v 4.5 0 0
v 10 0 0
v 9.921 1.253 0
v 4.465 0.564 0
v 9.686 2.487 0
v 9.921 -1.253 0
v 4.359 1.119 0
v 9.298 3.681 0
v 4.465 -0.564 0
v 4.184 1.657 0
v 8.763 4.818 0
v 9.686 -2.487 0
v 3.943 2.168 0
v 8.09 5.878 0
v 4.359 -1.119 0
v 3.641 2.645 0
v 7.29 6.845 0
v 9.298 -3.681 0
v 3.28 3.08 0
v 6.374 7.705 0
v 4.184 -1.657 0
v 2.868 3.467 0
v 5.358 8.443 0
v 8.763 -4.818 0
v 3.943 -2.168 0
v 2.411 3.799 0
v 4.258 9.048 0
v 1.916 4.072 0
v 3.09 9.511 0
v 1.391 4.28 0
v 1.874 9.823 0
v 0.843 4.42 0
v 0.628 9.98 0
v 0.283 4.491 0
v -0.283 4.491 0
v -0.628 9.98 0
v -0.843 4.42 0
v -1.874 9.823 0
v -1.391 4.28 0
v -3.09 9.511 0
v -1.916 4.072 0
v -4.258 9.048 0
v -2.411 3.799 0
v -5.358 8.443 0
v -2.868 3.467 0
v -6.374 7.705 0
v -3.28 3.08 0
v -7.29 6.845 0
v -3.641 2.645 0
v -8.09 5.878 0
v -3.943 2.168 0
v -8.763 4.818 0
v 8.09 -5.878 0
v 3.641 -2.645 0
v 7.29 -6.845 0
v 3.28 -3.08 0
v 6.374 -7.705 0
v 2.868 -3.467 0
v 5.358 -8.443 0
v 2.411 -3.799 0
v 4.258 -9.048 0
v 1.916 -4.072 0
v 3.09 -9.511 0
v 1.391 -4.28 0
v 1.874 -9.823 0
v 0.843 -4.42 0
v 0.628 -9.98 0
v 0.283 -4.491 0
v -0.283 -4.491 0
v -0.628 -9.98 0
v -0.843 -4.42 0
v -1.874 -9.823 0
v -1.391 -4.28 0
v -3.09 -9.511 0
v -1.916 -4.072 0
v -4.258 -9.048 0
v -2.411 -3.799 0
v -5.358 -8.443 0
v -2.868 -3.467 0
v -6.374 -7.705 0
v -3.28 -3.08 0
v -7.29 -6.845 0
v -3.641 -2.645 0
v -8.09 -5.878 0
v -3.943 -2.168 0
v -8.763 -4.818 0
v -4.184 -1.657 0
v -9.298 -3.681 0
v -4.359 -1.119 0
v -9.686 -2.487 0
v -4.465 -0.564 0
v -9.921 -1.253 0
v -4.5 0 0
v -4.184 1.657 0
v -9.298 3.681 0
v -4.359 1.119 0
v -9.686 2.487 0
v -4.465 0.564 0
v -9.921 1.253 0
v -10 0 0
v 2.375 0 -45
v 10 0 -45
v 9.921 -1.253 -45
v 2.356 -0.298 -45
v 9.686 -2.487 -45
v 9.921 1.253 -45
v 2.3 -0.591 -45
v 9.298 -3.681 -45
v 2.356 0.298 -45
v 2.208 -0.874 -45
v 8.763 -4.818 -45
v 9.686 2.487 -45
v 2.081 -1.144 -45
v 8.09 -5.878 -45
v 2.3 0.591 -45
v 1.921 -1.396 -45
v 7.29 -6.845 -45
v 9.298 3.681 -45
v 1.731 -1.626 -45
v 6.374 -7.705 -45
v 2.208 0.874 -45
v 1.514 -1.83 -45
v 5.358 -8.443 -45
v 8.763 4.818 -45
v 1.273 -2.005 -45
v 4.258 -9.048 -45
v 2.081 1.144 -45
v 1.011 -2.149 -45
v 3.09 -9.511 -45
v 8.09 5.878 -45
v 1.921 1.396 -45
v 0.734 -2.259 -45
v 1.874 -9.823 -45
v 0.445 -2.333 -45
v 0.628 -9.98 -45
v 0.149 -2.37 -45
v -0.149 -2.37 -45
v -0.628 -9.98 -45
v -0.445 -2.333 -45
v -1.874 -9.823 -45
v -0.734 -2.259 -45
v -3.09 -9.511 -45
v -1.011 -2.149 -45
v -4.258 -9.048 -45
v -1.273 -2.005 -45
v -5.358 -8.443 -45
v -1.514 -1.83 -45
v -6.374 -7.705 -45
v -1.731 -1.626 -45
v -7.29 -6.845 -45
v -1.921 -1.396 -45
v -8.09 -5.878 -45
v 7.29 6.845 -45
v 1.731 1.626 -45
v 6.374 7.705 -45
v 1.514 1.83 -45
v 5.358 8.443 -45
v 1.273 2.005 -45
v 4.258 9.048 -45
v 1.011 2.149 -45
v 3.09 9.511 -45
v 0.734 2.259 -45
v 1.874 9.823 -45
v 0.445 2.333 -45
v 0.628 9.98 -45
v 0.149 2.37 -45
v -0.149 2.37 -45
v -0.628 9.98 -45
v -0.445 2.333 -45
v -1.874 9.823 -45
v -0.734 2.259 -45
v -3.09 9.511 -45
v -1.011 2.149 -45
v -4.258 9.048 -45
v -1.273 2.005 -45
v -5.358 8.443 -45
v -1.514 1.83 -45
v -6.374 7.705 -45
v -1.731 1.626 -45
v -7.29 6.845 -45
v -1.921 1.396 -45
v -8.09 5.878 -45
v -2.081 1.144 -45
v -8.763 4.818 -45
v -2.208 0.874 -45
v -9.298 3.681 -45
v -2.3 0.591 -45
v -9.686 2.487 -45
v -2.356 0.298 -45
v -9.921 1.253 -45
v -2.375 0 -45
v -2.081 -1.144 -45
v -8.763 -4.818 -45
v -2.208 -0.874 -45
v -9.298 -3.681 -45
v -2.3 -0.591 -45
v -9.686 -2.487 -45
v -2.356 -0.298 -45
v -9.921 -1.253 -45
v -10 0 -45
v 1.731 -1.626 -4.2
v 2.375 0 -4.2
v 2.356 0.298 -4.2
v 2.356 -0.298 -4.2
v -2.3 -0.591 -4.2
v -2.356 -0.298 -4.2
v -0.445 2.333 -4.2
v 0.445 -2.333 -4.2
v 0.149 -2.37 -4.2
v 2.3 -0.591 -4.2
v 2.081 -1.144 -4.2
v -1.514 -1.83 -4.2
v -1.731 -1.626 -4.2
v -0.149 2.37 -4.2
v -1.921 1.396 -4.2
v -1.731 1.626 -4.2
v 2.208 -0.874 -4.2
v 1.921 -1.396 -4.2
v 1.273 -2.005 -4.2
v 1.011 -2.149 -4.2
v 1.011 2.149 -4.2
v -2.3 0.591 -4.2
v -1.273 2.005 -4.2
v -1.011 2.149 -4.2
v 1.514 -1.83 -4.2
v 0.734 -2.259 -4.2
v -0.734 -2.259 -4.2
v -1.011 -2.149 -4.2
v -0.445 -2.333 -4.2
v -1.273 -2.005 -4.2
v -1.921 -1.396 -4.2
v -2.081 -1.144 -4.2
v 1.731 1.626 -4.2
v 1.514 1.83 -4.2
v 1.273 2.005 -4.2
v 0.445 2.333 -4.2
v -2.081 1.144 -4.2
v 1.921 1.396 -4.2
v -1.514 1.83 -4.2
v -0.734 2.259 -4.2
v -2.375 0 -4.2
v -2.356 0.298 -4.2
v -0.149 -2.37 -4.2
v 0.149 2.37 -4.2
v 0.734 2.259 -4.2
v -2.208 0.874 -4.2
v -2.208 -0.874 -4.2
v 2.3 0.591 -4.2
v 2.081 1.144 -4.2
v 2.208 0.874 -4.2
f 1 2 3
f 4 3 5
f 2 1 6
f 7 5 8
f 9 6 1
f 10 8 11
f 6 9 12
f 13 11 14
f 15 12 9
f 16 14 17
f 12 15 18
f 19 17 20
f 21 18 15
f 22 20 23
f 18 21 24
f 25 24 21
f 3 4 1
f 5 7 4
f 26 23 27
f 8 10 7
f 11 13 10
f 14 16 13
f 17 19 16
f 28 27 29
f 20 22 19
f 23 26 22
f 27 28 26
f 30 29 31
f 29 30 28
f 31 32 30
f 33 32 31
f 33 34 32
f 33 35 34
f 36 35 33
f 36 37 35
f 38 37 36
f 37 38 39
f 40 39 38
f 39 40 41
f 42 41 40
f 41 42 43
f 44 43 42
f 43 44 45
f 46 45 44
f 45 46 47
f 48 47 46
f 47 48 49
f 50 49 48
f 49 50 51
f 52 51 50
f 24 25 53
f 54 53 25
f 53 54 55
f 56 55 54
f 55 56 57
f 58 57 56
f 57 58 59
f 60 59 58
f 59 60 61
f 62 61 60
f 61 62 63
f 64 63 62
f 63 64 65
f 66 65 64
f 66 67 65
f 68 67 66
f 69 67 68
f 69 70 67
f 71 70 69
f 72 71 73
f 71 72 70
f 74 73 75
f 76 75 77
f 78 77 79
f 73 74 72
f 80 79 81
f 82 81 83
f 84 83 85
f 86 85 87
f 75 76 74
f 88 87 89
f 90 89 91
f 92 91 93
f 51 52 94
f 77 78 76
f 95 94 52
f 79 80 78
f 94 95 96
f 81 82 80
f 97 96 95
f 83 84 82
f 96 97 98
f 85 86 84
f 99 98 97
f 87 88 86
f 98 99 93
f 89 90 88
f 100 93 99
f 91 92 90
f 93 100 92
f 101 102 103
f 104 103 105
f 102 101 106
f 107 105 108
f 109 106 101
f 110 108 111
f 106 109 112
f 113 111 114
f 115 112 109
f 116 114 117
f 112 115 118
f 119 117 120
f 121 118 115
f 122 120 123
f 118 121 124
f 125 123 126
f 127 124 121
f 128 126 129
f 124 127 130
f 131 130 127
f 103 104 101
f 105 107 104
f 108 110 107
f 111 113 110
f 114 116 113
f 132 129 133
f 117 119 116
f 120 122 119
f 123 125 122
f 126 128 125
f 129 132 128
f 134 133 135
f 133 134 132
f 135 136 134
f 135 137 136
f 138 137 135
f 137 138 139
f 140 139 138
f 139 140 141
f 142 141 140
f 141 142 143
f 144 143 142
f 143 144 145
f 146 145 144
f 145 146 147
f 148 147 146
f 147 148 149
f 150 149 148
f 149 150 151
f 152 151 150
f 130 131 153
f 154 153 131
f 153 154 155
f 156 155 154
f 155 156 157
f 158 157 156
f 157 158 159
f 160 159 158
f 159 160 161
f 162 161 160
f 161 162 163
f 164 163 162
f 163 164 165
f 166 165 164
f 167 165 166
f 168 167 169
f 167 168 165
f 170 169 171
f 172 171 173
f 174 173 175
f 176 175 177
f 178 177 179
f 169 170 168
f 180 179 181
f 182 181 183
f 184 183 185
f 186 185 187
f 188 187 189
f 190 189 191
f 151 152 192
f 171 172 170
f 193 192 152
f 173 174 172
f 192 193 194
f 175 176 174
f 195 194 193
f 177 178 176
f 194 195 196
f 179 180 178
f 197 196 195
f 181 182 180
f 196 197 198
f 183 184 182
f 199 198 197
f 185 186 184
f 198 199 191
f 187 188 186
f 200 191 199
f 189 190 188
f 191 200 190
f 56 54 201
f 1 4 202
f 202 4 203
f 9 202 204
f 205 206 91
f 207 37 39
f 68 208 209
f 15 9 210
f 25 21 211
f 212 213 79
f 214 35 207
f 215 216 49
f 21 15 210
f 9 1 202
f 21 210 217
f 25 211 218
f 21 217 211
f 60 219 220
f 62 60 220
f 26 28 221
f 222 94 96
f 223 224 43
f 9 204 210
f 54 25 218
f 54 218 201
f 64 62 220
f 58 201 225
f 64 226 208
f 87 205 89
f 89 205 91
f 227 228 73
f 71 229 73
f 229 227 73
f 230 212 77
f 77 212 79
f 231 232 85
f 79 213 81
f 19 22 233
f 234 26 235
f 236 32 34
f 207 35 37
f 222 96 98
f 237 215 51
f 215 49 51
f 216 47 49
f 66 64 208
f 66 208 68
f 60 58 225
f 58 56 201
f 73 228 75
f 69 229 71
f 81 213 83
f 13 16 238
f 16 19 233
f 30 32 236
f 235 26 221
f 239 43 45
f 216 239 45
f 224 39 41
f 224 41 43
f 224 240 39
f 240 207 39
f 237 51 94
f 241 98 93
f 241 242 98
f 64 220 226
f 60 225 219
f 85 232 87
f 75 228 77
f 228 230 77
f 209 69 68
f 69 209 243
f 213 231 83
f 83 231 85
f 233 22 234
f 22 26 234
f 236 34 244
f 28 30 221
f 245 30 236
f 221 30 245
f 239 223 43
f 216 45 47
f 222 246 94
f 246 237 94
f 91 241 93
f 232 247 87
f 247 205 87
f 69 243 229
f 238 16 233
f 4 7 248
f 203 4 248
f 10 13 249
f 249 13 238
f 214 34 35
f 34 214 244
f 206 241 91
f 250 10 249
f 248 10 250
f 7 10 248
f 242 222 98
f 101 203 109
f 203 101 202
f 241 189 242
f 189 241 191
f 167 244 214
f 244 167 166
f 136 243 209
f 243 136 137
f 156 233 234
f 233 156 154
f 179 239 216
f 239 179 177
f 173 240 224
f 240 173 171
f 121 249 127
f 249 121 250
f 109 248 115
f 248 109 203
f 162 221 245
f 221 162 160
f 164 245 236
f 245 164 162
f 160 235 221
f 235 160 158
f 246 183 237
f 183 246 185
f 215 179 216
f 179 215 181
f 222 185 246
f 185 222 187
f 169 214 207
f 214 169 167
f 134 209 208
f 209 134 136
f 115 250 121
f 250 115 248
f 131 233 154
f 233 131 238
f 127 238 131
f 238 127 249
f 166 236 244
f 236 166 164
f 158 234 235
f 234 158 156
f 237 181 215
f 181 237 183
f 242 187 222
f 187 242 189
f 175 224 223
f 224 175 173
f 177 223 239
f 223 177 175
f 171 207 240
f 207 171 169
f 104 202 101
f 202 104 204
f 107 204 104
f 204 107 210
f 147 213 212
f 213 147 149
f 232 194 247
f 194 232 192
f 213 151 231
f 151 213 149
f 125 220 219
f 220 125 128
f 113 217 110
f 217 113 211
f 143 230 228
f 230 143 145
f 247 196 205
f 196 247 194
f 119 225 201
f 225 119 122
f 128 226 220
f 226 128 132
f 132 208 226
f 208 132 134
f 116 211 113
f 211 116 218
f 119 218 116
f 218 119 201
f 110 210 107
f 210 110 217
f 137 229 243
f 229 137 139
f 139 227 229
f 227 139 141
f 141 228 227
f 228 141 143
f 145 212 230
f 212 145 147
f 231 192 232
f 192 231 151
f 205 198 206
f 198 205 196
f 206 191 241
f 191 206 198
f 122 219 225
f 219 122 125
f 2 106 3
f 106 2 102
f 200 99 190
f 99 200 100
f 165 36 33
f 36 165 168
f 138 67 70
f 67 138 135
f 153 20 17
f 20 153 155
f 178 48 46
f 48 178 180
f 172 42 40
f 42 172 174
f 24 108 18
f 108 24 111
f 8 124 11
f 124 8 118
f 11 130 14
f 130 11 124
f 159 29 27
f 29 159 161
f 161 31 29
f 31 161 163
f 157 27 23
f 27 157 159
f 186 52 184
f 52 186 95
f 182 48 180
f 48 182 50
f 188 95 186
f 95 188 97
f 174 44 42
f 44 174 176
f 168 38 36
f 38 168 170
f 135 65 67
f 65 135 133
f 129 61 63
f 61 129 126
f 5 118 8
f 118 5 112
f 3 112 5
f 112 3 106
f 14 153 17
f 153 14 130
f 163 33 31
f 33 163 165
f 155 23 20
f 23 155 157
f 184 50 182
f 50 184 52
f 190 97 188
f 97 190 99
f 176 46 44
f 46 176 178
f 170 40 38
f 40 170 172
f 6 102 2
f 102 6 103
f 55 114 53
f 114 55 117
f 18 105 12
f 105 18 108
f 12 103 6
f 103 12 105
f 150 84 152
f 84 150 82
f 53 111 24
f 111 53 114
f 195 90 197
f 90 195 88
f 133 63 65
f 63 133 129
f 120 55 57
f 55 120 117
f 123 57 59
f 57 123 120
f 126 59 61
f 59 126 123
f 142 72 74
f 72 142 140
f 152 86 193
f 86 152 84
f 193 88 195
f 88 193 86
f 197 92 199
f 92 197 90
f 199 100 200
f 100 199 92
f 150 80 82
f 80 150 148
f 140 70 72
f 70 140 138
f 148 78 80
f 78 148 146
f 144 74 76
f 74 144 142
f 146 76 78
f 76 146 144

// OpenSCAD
$fn = 50;


difference() {
	union() {
		translate(v = [0, 0, -45.0000000000]) {
			cylinder(h = 45, r = 10.0000000000);
		}
		cylinder(h = 0, r = 19.0000000000);
	}
	union() {
		translate(v = [0, 0, 0]) {
			rotate(a = [0, 0, 0]) {
				difference() {
					union() {
						#translate(v = [0, 0, -45.0000000000]) {
							cylinder(h = 45, r = 2.2500000000);
						}
						#translate(v = [0, 0, -4.2000000000]) {
							cylinder(h = 4.2000000000, r1 = 2.3750000000, r2 = 4.5000000000);
						}
						#translate(v = [0, 0, -45.0000000000]) {
							cylinder(h = 45, r = 2.3750000000);
						}
						#translate(v = [0, 0, -45.0000000000]) {
							cylinder(h = 45, r = 2.2500000000);
						}
					}
					union();
				}
			}
		}
	}
}
